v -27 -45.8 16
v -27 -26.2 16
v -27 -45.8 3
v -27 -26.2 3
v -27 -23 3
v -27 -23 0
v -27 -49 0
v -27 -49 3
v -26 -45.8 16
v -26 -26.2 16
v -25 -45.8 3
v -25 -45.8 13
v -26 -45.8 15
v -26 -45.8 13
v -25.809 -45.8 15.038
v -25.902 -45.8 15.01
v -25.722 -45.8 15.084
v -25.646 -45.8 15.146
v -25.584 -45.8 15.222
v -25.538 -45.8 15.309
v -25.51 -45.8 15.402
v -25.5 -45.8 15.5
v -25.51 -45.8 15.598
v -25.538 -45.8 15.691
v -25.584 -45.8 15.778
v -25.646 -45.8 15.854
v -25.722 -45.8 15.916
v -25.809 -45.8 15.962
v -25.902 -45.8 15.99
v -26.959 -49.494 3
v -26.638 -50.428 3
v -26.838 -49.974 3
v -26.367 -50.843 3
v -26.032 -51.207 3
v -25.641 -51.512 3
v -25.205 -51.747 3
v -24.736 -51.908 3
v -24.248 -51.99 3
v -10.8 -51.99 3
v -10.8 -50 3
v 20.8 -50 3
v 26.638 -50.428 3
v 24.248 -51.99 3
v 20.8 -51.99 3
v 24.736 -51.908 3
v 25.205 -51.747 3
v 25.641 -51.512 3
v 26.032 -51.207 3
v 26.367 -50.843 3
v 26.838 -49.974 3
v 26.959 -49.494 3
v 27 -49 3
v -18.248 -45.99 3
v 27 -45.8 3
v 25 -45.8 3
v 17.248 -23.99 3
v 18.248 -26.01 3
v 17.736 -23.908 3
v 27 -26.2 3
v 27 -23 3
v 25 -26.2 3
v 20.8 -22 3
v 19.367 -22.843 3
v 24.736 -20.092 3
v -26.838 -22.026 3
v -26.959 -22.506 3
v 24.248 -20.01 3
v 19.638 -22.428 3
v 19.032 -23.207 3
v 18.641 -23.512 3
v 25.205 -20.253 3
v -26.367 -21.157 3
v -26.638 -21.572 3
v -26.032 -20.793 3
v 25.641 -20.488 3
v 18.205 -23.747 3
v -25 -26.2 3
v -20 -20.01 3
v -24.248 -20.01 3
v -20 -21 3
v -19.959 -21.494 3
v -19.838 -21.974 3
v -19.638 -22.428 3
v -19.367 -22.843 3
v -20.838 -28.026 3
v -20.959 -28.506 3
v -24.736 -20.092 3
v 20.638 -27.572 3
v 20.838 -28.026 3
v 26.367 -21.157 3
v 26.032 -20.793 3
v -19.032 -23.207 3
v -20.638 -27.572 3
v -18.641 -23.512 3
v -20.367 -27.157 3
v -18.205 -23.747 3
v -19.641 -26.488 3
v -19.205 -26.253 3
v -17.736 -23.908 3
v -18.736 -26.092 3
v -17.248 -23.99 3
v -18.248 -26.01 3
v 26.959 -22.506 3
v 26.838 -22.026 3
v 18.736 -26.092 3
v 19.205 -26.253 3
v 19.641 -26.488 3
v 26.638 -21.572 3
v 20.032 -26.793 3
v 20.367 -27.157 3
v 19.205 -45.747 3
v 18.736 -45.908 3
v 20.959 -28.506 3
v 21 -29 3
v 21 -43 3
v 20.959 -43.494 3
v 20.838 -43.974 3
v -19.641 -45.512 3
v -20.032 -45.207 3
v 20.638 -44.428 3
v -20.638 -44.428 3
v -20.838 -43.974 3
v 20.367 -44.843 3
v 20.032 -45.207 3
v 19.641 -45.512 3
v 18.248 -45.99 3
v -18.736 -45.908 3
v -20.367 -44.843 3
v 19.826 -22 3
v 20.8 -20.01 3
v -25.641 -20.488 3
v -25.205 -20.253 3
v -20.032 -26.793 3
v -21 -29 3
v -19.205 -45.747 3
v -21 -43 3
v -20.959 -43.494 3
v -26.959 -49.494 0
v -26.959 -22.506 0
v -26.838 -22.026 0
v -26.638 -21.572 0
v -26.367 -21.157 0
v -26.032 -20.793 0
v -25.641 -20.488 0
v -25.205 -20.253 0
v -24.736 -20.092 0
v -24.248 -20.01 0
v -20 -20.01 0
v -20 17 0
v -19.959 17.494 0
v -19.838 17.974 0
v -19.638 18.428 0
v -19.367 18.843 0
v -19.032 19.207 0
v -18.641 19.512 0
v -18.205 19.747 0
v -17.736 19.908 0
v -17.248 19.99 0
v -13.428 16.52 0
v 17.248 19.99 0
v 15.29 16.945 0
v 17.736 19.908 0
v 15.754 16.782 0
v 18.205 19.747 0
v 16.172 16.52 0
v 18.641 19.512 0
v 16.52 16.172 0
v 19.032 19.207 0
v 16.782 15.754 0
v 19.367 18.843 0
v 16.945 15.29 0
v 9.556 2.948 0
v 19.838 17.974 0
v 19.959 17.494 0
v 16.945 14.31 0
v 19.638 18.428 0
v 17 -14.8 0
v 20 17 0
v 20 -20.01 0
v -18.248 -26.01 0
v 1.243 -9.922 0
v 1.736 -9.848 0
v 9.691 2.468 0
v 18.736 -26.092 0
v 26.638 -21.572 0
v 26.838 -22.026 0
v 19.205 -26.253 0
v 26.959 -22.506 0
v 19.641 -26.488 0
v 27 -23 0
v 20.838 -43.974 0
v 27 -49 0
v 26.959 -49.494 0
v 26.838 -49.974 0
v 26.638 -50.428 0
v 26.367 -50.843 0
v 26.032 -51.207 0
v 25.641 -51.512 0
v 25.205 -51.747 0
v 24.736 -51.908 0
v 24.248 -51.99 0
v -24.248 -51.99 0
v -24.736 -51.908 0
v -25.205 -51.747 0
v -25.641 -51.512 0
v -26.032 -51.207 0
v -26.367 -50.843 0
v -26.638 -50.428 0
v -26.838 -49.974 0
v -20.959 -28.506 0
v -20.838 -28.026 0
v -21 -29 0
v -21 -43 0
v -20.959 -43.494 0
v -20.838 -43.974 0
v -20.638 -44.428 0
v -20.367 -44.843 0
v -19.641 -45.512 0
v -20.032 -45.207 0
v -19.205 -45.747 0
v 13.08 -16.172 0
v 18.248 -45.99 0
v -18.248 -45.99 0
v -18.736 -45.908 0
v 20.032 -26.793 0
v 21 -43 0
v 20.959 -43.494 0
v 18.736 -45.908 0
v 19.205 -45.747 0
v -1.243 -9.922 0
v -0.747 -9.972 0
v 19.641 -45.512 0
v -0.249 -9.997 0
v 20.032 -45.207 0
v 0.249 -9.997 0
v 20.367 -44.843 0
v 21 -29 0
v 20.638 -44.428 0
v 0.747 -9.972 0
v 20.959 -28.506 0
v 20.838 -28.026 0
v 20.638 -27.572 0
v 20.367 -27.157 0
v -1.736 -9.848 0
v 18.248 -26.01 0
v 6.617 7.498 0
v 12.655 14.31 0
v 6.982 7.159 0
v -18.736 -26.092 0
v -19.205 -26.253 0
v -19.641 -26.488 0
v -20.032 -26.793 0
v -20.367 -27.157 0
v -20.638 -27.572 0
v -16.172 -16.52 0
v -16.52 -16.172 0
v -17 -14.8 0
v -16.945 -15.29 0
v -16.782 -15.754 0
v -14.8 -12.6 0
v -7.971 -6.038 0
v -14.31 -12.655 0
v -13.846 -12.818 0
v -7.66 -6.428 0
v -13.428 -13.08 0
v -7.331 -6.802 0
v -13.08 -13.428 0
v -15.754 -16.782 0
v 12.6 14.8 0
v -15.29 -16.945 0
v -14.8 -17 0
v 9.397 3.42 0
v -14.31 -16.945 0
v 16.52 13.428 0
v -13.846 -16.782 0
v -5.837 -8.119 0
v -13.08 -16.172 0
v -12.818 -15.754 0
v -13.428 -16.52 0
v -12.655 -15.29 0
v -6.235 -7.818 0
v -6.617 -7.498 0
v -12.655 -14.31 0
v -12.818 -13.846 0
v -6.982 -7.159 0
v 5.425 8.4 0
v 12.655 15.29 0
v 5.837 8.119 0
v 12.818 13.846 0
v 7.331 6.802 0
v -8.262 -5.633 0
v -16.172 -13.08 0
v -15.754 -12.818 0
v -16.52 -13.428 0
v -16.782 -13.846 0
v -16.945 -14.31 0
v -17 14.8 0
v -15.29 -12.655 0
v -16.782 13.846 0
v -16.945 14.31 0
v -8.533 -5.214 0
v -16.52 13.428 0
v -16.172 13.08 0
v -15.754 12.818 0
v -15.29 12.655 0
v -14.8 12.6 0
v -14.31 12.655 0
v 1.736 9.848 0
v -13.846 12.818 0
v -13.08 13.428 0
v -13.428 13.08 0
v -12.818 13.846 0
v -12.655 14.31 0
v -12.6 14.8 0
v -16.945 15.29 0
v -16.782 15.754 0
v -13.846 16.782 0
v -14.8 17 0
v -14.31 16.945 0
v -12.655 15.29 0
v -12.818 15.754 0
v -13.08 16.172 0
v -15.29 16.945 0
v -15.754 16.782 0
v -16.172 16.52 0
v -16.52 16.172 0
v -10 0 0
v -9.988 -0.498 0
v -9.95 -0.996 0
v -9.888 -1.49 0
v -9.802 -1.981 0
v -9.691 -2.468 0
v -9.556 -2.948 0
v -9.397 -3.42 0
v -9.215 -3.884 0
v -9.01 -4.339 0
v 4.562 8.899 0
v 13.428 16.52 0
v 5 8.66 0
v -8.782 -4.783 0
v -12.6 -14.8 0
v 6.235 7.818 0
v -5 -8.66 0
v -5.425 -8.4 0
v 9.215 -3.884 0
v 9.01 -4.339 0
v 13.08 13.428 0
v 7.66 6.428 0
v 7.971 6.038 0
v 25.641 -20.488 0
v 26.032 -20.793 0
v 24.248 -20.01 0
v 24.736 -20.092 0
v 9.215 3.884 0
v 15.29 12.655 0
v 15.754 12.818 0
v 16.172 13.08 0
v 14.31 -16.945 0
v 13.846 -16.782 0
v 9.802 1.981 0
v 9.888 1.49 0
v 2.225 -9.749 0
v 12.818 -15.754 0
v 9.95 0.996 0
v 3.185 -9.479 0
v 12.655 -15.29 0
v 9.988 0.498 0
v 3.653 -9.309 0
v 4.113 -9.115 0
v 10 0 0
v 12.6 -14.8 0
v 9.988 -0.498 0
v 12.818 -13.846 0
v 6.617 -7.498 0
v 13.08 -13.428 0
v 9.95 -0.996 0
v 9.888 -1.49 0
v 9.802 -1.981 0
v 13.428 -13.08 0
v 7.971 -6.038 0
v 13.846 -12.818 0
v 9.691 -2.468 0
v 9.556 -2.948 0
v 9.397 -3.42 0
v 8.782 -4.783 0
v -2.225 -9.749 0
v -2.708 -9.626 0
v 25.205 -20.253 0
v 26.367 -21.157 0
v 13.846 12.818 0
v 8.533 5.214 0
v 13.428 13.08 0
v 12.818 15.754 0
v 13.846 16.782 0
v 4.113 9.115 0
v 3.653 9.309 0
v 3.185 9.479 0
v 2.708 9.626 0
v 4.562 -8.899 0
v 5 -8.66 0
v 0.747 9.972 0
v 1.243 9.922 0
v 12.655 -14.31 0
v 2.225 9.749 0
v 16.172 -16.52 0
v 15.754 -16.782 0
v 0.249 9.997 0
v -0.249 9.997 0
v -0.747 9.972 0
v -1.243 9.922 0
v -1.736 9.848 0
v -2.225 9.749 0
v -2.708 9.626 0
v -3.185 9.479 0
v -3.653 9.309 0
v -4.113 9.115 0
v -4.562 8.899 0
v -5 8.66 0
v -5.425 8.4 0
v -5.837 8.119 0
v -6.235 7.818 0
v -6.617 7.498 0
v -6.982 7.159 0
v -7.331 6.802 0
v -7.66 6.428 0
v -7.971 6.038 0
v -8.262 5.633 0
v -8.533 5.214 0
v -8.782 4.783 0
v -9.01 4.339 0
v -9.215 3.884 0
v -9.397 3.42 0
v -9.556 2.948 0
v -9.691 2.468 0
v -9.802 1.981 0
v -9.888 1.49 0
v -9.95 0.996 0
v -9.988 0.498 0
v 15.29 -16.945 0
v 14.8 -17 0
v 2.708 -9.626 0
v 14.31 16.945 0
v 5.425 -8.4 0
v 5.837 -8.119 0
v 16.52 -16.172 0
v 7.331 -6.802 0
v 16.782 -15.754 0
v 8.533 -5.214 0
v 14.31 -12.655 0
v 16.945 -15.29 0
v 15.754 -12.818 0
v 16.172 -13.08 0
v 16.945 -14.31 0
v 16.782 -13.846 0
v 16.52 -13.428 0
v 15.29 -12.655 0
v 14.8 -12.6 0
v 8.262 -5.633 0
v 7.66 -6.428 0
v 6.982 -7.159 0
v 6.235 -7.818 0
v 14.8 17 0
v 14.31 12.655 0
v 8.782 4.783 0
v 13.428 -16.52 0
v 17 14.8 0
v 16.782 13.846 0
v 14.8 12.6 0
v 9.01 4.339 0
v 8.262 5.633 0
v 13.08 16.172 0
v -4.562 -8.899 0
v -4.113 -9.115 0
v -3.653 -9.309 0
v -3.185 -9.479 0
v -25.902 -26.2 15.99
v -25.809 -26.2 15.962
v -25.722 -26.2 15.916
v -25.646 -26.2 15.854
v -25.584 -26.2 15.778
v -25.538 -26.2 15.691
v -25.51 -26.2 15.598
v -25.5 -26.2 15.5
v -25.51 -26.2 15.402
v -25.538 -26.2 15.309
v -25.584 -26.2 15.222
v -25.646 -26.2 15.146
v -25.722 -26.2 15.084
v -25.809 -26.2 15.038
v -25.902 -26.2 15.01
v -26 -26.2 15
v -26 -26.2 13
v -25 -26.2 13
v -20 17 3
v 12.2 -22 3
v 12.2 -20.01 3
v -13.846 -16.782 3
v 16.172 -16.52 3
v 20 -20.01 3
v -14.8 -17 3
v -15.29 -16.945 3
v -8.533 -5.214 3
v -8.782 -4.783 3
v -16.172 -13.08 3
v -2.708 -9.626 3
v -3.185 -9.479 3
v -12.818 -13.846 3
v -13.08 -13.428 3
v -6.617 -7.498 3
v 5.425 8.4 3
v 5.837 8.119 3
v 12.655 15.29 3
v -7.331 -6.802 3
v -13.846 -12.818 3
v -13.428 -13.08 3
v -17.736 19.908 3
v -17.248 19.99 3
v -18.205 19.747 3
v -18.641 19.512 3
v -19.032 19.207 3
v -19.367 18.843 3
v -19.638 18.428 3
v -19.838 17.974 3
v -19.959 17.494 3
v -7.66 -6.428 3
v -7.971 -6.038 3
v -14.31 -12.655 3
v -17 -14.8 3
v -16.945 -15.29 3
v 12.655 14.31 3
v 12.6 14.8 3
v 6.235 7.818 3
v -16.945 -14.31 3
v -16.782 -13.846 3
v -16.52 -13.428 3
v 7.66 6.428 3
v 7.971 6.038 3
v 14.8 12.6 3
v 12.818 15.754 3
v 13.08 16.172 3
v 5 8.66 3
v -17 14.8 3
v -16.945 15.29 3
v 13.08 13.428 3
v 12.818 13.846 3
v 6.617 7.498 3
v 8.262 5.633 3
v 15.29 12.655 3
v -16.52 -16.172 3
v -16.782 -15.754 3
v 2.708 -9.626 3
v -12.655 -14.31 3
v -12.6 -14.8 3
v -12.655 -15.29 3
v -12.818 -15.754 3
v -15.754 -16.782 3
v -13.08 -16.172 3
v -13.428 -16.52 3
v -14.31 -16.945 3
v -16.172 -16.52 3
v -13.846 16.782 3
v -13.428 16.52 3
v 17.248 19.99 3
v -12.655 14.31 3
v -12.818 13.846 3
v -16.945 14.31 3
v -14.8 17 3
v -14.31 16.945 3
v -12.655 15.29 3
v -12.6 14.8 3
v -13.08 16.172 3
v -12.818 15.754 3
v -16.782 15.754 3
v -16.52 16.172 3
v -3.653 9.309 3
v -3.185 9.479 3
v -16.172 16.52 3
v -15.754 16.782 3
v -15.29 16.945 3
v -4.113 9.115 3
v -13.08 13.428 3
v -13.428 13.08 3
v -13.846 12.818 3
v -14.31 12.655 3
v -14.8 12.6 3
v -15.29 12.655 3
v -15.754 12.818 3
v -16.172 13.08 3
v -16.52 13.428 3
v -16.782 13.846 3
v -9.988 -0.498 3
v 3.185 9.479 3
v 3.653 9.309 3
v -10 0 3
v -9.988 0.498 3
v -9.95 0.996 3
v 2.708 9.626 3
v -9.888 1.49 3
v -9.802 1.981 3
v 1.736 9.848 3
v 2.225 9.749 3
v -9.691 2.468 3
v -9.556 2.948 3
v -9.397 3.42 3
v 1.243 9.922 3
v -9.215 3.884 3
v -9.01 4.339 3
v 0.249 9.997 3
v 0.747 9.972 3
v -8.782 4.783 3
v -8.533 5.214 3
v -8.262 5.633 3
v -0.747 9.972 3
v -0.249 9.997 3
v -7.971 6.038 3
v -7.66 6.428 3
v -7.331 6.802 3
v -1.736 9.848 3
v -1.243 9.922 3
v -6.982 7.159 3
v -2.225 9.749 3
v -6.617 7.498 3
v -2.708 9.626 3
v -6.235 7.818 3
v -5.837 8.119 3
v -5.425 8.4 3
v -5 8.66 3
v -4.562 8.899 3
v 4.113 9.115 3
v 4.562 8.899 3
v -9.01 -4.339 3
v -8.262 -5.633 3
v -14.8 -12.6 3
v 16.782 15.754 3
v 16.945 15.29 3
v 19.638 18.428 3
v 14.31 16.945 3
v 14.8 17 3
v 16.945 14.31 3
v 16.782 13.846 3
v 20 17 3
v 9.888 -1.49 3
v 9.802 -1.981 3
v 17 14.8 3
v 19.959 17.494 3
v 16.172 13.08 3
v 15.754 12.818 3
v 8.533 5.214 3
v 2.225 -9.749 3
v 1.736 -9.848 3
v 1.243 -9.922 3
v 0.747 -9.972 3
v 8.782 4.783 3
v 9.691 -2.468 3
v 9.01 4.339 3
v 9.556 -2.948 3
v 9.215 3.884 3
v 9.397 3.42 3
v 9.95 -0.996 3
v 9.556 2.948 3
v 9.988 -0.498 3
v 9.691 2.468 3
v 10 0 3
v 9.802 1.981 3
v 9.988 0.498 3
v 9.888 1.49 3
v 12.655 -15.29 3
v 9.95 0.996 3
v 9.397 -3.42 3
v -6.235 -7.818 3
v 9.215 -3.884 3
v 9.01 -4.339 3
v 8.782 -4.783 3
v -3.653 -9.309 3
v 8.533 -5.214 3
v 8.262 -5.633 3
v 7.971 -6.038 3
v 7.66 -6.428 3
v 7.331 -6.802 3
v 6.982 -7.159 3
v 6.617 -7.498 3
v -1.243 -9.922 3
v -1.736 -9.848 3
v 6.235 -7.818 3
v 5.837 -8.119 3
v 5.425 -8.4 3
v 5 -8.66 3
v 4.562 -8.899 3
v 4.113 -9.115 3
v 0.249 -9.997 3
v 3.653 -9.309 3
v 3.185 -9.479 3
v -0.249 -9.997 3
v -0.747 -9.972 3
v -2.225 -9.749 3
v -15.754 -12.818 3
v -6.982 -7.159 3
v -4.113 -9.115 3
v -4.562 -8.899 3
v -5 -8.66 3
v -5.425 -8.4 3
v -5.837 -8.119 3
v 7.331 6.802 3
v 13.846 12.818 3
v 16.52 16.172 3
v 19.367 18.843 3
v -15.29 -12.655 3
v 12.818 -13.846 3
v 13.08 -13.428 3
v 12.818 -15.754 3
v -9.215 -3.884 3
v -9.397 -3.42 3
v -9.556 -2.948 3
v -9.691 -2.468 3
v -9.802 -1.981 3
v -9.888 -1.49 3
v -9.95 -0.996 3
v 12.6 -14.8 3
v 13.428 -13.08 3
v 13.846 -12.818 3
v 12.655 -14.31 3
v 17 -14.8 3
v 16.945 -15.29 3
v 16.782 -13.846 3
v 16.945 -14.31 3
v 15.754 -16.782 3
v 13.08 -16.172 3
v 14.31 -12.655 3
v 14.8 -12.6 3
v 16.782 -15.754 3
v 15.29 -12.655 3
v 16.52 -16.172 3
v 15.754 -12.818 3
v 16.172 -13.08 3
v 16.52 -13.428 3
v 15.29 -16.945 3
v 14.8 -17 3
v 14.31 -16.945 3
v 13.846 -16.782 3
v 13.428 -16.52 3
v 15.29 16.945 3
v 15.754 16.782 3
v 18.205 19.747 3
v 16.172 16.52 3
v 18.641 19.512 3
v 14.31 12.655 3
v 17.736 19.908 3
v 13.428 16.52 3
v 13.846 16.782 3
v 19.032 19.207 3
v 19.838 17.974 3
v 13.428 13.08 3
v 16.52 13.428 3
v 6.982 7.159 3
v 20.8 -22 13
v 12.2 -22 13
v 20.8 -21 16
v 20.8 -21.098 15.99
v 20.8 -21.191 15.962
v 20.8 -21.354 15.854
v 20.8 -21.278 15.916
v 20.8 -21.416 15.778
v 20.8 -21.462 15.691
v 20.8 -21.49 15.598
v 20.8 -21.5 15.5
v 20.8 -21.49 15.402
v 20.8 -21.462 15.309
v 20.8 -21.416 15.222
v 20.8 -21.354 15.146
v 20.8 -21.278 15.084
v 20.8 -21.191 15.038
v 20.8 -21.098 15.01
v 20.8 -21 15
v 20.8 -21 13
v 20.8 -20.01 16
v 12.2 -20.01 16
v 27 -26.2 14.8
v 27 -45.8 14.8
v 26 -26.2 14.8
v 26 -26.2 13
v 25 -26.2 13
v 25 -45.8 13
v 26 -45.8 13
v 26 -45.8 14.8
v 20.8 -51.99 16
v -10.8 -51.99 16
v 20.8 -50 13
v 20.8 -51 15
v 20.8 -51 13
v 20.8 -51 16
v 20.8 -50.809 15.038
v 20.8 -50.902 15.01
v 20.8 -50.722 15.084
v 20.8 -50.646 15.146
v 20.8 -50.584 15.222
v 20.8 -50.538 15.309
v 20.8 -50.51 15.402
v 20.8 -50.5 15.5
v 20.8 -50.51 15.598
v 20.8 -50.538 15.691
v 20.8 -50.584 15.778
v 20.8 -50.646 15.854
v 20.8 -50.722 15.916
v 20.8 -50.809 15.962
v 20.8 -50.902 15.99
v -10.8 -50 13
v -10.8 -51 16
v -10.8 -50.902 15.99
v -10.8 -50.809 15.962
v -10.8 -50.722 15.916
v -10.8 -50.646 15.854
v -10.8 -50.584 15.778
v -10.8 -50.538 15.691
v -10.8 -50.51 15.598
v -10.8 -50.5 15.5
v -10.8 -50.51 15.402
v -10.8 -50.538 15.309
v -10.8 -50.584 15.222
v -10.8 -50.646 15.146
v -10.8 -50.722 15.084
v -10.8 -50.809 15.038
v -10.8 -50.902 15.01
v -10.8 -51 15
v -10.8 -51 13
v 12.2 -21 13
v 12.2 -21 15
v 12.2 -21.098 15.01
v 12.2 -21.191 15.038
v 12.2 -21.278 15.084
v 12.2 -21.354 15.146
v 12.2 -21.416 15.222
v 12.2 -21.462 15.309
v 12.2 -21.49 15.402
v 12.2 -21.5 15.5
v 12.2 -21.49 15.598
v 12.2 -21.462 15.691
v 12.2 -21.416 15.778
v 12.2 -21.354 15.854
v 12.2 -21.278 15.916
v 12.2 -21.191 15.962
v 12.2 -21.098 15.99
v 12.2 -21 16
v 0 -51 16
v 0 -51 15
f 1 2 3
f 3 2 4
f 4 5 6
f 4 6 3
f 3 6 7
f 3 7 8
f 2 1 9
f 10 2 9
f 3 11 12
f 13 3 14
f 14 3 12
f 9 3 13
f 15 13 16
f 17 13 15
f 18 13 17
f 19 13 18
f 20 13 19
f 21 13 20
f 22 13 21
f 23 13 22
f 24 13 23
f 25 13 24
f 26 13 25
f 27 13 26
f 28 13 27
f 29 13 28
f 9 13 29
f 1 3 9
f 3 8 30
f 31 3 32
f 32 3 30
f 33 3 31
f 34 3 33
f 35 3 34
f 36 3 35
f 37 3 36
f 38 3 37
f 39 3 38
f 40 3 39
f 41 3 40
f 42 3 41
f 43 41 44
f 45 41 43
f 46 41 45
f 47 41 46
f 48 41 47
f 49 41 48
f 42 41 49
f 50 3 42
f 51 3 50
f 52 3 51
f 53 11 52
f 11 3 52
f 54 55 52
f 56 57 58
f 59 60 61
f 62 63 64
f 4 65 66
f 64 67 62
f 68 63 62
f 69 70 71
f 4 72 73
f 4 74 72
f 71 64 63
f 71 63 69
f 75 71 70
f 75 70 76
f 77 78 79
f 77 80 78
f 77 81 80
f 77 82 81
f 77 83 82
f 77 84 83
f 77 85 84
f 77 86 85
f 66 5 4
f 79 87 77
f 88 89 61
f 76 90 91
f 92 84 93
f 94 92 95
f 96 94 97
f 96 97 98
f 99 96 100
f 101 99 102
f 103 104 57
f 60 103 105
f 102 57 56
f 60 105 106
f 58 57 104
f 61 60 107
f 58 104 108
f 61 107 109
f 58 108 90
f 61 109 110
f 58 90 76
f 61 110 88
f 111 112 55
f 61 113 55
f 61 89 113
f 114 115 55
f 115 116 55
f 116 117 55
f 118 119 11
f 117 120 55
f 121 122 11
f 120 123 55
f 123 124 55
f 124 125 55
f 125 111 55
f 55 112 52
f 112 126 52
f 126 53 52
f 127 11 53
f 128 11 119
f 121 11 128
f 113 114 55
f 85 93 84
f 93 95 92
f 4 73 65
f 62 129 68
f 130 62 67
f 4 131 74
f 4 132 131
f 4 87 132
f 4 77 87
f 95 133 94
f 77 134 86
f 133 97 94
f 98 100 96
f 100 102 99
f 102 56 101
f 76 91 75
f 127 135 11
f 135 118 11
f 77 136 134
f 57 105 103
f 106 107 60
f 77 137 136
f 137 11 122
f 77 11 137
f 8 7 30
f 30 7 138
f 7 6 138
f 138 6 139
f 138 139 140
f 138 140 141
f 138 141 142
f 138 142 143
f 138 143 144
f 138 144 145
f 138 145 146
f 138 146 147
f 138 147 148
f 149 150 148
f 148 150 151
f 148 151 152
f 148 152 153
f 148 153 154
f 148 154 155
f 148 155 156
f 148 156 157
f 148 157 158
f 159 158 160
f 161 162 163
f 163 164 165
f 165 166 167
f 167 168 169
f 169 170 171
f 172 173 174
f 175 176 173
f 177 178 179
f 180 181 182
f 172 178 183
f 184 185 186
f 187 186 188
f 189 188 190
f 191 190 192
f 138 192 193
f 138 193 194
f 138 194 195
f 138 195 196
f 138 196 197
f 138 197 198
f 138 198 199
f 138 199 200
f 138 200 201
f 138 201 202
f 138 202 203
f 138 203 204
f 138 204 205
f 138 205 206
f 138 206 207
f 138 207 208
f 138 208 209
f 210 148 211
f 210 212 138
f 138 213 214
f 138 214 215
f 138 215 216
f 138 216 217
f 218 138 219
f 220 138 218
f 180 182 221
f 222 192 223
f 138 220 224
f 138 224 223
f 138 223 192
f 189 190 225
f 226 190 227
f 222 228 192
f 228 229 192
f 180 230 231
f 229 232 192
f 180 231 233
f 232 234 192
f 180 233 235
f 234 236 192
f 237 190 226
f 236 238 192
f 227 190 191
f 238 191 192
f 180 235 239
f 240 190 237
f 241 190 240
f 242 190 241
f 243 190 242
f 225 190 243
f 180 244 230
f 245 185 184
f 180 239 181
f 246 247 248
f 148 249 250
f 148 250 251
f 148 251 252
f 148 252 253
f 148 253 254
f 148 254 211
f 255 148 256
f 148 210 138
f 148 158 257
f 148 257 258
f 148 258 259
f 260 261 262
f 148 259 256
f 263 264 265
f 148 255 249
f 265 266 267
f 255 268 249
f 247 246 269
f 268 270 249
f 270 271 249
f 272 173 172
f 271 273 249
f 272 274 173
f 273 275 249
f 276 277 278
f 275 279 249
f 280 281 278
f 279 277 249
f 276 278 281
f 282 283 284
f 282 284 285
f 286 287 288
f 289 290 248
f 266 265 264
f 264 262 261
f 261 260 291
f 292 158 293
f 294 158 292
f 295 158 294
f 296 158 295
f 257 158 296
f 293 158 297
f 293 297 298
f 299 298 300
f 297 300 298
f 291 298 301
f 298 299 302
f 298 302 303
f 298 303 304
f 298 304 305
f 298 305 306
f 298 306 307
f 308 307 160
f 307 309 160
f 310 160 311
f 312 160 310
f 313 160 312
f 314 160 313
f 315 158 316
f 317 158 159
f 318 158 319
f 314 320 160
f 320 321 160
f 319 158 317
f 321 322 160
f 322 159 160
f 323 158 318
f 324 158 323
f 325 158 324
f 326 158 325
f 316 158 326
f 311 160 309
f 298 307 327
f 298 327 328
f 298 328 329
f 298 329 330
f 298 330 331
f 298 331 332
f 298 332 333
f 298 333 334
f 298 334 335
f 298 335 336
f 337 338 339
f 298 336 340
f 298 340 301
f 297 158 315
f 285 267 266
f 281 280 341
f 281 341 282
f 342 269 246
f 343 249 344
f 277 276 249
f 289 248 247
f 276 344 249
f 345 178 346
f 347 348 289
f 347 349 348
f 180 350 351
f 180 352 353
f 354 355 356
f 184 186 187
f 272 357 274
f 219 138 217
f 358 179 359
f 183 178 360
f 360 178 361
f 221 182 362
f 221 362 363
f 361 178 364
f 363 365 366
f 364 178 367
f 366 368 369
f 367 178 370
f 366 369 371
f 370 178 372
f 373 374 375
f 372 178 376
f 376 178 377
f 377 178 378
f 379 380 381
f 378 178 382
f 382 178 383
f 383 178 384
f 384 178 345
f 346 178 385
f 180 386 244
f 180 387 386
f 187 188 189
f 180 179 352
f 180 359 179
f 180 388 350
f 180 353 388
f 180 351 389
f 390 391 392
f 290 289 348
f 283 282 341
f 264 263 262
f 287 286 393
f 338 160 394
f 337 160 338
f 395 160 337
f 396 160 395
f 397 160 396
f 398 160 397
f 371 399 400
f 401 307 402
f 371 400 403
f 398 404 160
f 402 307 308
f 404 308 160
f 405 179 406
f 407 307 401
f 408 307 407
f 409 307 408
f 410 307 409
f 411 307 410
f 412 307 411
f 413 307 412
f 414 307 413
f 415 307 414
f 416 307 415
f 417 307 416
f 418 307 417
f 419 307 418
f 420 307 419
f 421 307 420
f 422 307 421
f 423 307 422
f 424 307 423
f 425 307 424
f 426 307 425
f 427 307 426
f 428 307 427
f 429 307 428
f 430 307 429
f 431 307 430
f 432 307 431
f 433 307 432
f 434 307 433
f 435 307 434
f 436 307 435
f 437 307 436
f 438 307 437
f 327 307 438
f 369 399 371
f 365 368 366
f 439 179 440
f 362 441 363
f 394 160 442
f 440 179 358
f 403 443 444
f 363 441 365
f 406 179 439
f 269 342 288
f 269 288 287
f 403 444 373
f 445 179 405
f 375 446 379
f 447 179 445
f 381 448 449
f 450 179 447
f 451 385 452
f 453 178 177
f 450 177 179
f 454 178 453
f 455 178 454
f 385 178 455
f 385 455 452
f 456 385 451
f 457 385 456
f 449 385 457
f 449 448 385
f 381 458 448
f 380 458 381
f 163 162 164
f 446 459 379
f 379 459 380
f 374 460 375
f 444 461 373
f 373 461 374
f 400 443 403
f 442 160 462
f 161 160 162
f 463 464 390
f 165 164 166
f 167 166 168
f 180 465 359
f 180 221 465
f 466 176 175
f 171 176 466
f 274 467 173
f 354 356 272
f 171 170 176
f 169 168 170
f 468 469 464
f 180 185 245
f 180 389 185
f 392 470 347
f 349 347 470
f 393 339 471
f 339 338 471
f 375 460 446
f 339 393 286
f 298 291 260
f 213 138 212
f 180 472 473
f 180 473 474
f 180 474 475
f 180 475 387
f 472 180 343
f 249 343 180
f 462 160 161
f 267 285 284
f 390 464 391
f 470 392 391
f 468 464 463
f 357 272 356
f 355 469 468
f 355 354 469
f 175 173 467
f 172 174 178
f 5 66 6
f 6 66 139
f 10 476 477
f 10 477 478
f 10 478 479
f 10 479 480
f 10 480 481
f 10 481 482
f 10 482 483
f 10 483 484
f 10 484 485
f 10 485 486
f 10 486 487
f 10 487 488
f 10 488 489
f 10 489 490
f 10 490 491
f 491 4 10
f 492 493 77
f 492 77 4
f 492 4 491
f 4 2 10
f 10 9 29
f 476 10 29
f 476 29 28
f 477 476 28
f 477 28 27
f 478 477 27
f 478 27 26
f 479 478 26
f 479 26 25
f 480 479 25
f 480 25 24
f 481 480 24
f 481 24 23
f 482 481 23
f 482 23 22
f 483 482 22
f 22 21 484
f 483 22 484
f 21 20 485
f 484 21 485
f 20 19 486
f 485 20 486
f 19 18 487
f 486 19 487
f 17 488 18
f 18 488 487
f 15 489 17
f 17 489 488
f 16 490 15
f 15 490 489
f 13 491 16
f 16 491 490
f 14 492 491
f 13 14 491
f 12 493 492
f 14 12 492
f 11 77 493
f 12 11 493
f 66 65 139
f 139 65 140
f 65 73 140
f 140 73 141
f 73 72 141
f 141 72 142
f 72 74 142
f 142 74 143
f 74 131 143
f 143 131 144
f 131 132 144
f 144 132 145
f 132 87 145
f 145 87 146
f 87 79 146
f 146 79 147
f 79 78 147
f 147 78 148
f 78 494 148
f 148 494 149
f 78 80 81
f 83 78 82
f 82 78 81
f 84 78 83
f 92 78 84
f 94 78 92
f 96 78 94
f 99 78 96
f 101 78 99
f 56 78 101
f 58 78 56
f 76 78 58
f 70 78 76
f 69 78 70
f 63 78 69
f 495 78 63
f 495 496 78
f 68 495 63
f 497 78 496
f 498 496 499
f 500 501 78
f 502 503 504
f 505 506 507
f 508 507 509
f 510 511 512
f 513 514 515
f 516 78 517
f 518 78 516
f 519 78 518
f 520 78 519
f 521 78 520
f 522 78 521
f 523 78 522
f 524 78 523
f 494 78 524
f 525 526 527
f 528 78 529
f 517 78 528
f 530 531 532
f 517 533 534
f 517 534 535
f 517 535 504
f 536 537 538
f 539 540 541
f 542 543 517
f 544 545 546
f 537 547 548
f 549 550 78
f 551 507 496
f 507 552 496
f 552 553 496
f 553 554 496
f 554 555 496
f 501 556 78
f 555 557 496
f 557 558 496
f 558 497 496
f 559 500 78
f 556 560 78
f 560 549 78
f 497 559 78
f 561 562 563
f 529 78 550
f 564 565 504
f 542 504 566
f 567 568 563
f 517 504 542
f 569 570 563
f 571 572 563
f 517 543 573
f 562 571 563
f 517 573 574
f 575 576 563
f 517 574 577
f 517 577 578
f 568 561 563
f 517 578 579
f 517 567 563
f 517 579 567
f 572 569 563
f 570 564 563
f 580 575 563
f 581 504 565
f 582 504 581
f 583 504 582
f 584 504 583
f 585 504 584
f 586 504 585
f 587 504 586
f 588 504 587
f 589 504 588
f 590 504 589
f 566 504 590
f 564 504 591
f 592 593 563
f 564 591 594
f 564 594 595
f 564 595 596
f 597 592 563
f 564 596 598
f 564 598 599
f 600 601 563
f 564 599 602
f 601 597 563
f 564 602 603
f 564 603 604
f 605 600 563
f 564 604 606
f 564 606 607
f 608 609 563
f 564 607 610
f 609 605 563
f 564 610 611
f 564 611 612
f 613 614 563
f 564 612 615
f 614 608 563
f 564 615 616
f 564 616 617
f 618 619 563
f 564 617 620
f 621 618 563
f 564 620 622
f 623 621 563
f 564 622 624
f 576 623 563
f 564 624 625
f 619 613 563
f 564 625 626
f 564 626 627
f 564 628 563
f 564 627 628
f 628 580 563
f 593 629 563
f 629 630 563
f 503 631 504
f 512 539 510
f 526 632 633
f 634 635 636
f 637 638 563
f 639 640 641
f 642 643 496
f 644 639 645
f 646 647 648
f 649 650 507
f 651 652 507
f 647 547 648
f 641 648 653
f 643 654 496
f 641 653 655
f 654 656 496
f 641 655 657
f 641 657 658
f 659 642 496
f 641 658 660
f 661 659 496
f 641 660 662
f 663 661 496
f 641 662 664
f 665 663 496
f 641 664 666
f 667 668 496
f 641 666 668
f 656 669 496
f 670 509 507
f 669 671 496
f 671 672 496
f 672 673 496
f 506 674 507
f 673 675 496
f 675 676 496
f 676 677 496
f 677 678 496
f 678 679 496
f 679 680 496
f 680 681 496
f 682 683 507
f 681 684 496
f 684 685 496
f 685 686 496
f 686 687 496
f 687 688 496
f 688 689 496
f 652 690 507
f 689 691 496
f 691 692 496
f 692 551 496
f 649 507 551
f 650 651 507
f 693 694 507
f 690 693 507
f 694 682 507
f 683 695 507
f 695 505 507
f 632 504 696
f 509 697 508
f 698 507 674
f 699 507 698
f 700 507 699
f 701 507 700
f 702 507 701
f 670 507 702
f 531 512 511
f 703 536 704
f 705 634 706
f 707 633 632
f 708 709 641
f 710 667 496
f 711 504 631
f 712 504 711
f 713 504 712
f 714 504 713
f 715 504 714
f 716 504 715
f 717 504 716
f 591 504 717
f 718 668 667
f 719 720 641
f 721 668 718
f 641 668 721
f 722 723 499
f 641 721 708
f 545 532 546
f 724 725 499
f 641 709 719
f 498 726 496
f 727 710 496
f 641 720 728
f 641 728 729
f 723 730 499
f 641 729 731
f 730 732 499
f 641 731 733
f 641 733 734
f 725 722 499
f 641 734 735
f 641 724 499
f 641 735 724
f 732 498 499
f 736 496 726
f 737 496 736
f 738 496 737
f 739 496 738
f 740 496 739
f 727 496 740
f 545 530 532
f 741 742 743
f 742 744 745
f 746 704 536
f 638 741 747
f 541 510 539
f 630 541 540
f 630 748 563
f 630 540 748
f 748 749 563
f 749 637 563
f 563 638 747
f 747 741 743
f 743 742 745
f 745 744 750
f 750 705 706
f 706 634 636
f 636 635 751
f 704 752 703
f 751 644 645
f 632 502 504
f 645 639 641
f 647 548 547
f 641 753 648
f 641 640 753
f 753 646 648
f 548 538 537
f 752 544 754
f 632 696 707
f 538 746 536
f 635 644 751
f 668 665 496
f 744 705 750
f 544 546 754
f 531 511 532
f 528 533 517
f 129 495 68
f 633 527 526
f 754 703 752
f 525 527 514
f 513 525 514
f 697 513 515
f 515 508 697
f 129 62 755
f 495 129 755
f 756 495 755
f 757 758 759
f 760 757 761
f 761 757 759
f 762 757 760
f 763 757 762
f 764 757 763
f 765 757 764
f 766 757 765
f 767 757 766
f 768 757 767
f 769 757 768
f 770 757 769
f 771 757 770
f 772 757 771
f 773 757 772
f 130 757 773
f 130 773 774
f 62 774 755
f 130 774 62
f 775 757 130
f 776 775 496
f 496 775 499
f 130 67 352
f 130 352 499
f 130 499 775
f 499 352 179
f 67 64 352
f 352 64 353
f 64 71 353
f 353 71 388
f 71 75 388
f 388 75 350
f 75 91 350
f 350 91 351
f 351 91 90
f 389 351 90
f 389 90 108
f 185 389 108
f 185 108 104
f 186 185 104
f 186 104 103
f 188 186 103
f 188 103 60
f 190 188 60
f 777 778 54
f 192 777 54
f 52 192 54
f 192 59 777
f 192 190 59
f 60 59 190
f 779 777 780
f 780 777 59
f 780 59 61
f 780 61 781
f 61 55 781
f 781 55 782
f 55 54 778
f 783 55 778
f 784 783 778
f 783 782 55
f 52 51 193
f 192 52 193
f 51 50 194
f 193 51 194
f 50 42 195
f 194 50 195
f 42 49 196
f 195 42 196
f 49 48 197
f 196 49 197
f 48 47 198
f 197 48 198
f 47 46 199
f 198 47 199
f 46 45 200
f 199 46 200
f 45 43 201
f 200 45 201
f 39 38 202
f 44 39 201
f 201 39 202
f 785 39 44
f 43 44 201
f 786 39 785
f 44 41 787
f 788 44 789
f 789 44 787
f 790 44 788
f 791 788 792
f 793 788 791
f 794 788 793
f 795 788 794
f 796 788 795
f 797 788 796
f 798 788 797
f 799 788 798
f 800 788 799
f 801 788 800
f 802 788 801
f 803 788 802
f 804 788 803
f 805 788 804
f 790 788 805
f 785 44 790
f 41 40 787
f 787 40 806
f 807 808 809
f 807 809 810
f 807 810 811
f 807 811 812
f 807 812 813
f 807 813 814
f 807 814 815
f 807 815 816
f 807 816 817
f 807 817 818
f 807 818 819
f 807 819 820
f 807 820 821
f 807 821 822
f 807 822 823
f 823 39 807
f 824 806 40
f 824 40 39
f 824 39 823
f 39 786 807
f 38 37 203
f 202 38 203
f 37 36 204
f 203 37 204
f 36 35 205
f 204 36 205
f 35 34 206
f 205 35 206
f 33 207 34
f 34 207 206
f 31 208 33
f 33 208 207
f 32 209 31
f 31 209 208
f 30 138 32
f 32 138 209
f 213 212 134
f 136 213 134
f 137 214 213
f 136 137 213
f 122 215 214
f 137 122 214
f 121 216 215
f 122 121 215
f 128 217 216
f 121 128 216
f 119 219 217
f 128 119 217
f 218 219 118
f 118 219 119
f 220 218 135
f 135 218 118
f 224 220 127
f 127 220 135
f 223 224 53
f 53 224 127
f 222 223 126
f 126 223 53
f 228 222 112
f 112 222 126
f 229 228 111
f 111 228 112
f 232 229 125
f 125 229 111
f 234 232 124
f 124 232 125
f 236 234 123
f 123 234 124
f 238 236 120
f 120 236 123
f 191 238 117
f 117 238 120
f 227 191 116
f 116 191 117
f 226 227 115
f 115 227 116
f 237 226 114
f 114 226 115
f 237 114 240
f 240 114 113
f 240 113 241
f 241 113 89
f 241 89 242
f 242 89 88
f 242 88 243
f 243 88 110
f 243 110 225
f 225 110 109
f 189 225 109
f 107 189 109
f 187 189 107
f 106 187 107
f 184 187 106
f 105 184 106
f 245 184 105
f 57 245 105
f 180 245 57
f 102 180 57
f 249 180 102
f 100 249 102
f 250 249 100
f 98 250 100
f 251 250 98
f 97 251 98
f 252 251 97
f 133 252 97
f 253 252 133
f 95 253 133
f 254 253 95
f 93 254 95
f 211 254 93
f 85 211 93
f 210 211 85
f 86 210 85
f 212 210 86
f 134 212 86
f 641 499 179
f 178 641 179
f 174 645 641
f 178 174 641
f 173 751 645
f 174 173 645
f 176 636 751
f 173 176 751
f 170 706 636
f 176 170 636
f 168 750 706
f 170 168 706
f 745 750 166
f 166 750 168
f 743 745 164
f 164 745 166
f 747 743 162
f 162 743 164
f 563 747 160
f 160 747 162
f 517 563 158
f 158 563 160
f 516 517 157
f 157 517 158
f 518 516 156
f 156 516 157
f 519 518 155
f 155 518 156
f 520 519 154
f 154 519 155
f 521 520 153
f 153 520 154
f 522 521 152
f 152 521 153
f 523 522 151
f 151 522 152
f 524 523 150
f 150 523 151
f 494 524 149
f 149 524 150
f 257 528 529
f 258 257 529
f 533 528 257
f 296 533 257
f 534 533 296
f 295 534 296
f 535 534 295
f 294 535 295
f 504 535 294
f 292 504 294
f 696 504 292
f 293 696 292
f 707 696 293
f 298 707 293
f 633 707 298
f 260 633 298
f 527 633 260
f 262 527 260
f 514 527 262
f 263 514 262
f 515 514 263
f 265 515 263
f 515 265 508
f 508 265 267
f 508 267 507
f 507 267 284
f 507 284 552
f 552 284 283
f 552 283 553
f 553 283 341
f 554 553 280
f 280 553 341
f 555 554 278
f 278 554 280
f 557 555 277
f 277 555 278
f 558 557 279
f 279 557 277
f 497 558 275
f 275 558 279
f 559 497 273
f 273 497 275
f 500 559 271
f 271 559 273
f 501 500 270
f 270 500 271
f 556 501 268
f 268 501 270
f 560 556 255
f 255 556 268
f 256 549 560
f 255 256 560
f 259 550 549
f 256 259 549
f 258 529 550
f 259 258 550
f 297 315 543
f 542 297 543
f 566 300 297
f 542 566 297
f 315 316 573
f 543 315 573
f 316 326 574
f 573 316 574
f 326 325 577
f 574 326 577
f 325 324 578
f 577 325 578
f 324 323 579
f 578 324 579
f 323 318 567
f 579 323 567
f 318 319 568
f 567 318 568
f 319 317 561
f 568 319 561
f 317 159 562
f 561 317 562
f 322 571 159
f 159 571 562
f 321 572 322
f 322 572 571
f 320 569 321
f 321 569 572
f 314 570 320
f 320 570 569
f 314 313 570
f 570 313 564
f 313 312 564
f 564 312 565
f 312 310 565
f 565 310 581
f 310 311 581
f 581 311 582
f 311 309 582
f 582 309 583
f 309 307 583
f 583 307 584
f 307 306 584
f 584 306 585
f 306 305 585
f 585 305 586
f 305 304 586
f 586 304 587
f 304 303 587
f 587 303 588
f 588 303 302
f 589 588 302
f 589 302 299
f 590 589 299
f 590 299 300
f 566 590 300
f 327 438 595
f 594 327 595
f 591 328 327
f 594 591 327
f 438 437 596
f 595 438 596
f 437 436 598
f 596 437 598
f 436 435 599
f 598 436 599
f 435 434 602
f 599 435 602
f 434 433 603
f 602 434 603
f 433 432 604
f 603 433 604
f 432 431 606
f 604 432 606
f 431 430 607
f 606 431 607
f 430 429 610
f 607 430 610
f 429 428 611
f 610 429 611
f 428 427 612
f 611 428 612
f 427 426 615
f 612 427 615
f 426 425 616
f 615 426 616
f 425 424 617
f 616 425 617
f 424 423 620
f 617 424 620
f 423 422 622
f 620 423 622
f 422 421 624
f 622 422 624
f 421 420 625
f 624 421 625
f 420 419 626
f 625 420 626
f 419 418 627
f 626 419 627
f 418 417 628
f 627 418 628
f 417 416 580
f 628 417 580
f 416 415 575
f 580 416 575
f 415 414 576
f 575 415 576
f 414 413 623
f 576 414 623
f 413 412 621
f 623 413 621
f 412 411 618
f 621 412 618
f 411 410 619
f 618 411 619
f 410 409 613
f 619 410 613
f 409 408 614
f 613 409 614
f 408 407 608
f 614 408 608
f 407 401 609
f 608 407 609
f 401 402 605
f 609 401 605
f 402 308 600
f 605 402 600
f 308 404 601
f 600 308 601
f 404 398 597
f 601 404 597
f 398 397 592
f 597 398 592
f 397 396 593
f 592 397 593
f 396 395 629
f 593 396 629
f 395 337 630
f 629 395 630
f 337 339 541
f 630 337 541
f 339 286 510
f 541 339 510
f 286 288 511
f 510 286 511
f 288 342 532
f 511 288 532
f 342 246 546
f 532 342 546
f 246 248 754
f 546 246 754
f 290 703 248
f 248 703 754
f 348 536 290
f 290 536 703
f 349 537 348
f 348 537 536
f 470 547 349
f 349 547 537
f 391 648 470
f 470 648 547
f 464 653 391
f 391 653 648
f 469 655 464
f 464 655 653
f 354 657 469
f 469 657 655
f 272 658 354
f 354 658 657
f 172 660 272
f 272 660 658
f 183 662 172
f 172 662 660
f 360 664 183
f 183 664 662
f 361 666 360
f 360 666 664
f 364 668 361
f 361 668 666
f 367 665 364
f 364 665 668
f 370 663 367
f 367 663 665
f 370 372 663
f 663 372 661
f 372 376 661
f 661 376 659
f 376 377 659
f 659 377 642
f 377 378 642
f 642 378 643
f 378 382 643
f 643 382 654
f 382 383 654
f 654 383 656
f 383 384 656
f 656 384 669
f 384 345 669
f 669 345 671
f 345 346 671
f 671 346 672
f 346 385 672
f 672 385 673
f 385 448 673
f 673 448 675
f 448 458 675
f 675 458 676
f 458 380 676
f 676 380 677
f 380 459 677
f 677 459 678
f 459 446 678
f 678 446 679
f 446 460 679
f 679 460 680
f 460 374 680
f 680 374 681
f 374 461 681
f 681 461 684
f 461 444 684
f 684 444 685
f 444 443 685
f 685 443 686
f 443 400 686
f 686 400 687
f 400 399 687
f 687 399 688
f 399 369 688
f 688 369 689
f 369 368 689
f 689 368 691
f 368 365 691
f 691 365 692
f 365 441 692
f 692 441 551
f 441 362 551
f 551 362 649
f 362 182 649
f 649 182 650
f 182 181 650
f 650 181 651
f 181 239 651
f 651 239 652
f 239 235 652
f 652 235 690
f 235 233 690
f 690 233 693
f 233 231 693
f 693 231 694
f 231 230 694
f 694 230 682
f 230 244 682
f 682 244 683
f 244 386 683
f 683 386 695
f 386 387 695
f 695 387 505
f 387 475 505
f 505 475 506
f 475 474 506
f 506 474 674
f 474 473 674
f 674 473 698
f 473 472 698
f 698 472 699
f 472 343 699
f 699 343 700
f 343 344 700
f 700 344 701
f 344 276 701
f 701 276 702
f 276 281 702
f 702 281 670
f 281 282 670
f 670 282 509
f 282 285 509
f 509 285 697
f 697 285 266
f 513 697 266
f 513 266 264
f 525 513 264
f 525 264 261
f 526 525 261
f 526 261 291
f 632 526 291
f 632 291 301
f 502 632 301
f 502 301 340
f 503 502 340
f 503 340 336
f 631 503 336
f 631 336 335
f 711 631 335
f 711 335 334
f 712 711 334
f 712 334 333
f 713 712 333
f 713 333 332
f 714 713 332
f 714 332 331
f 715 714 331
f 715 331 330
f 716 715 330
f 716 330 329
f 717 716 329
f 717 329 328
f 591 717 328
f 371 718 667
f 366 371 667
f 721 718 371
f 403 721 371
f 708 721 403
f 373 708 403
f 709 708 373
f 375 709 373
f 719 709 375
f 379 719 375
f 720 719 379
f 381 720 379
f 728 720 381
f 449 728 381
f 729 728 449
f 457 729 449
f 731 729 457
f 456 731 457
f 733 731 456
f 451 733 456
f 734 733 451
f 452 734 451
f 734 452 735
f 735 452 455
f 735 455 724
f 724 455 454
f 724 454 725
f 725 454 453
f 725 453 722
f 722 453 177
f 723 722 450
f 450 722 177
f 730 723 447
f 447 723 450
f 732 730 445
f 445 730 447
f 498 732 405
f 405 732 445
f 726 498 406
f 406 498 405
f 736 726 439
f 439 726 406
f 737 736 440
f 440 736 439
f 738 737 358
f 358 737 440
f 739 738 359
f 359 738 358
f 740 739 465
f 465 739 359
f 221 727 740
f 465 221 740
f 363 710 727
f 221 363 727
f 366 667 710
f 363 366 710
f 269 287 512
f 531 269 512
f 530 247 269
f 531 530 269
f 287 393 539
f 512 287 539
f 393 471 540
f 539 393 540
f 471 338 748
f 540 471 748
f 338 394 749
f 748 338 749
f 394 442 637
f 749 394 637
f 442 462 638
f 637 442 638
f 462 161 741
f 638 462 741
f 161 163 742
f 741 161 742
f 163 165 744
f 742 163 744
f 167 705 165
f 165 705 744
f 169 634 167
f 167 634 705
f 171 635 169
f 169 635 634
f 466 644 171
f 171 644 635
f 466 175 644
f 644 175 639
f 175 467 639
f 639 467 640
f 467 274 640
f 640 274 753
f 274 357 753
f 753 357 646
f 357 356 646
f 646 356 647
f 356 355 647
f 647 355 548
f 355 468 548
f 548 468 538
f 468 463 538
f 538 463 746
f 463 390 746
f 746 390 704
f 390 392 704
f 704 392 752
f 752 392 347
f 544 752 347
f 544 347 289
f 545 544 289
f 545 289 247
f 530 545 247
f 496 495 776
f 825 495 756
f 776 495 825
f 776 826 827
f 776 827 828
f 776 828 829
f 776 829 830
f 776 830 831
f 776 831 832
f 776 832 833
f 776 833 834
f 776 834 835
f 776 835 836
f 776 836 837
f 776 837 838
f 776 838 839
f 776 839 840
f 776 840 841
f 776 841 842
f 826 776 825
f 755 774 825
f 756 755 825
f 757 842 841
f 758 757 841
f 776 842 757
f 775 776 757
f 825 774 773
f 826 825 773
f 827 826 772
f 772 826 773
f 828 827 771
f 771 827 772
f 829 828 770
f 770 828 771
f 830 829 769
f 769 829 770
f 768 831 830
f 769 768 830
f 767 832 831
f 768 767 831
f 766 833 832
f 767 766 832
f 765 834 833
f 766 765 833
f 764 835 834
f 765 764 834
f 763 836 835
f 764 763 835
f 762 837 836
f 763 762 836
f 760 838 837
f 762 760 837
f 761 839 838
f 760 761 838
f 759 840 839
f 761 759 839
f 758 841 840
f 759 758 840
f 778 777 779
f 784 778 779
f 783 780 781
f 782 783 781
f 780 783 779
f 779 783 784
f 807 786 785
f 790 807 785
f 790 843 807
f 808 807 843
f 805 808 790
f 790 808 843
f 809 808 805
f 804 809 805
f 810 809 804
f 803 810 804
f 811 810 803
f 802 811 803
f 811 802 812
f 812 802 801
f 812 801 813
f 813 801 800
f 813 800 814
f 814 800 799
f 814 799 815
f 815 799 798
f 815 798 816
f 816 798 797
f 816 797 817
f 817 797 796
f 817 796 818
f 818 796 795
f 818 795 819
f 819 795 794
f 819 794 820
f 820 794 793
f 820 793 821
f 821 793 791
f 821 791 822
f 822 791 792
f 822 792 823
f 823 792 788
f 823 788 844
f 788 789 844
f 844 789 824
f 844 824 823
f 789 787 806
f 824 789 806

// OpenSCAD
// file: functions.scad
/*******************************************************************

This OpenSCAD code and its rendered 3D model are part of the

	Kühling&Kühling RepRap Industrial 3D Printer


All details, BOM, assembling instructions and latest sources:
	http://kuehlingkuehling.de

Designed and developed by:
	Jonas Kühling <mail@jonaskuehling.de>
	Simon Kühling <mail@simonkuehling.de>

Licensed under:
	Creative Commons Attribution-ShareAlike
	CC BY-SA 3.0
	http://creativecommons.org/licenses/by-sa/3.0/

*******************************************************************/

module teardrop (r=4.5,h=20,alpha=45,teardropcorner=0,fulldrop=0){		// tear drop hole for top-centering
											// use teardropcorner=1 for bottom horizontal corners
	render()
	translate([-h/2,0,0])
		rotate([-270,0+(teardropcorner*180),90])
			difference(){
				linear_extrude(height=h){
					circle(r);
					polygon(points=[[0,0],[r*cos(alpha),r*sin(alpha)],[0,r/sin(alpha)],[-r*cos(alpha),r*sin(alpha)]], paths=[[0,1,2,3]]);
				}
				if(fulldrop==0) 
					translate([0,(r/sin(alpha))/2+r,h/2]) cube([2*r+2,r/sin(alpha),h+2],center=true);
			}
}

//teardrop(4.5,22,fulldrop=true);



module teardropcentering (r=4.5,h=20,alpha=45){				// tear drop hole for top-centering
	centering_offset_factor = 1.1;
	render()
	translate([-h/2,0,0])
		rotate([-270,0,90])
			difference(){
				linear_extrude(height=h){
					circle(r, $fn=24);
					polygon(points=[[0,0],[r*cos(alpha),r*sin(alpha)],[0,r/sin(alpha)],[-r*cos(alpha),r*sin(alpha)]], paths=[[0,1,2,3]]);
				}
				translate([0,(r/sin(alpha))/2+r*centering_offset_factor,h/2]) cube([2*r+2,r/sin(alpha),h+2],center=true);
			}
}

//teardropcentering();



module teardropcentering_half (r=4.5,h=20, bottom=0,alpha=45){				// tear drop hole for top-centering
																// upper half (bottom=0) or bottom half (bottom=1)
	centering_offset_factor = 1.2;
	render()
	translate([-h/2,0,0])
		rotate([-270,0,90])
			difference(){
				linear_extrude(height=h){
					circle(r, $fn=24);
					polygon(points=[[0,0],[r*cos(alpha),r*sin(alpha)],[0,r/sin(alpha)],[-r*cos(alpha),r*sin(alpha)]], paths=[[0,1,2,3]]);
				}
				translate([0,(r/sin(alpha))/2+r*centering_offset_factor,h/2]) cube([2*r+2,r/sin(alpha),h+2],center=true);
				translate([0,-(r*centering_offset_factor)/2-0.5+bottom*(r*centering_offset_factor+1),h/2]) cube([2*r+2,r*centering_offset_factor+1,h+2],center=true);
			}
}

//teardropcentering_half(bottom=0);


module polyhole(d,h){
	n = max(round(2 * d),3);
	cylinder(h = h, r = (d / 2) / cos (180 / n), $fn = n, center=true);
}



module roundcorner(radius,edge_length){
	render()
	translate([0,0,-1])
		difference(){
			translate([-1,-1,0])
				cube(size = [radius+1,radius+1,edge_length+2], center = false);
			translate(v = [radius,radius,-1])
				cylinder(h = edge_length+4, r=radius, center=false,$fs=0.1);
		}
}

//roundcorner(5,5);



module roundcorner_tear(radius,edge_length){
	render()
	difference(){
		translate([-1,-1,-1])
			cube(size = [edge_length+2, radius+1, radius+1], center = false);
		translate([(edge_length+4)/2-2, radius, radius])
			teardrop(radius, edge_length+4,teardropcorner=1);
	}
}

//roundcorner_tear(8,20);


module roundedge_tear(radius){
	render()
	difference(){
		translate([-1,-1,-1])
			cube(size = [radius+1, radius+1, radius+1], center = false);
		translate([radius,radius,radius])
			union(){
				sphere(r=radius, $fs=0.1);
				translate([0,0,-radius])
					cylinder(r1=(radius*sin(45))-(radius-(radius*sin(45))),r2=radius*sin(45),h=(radius-(radius*sin(45))), $fs=0.1);
			}
	}
}

//roundedge_tear(20);



module roundedge(radius){
	render()
	difference(){
		translate([-1,-1,-1])
			cube(size = [radius+1, radius+1, radius+1], center = false);
		translate([radius,radius,radius])
			sphere(r=radius, $fs=0.1);
	}
}

//roundedge(5);


module nut_trap(nut_wrench_size,trap_height,vertical=0, clearance=0.2,center=true){		// M3 wrench size = 5.5
	radius = cornerdiameter(nut_wrench_size+2*clearance) /2;
	rotate([0,vertical*90,0])
		cylinder(h = trap_height, r = radius, center=center, $fn = 6);
}

//nut_trap(5,5,0);

module nut_slot(nut_wrench_size,nut_height, nut_elevation,vertical=0, clearance=0.2){		// M3 wrench size = 5.5
	radius = cornerdiameter(nut_wrench_size+2*clearance) /2;
	slot_height = nut_height+2*clearance;
	slot_width = nut_wrench_size+2*clearance;
	rotate([0,vertical*270,0]){
		cylinder(h = slot_height, r = radius, center=true, $fn = 6);
		translate([0,-slot_width/2,-slot_height/2]) cube([nut_elevation+1,slot_width,slot_height]);
	}
}

//nut_slot(5.5,3,4,1);

function cornerdiameter(wrench_size) =  2* ((wrench_size)/2)/ cos(180/6);
function cornerdiameter_8(wrench_size) =  2* ((wrench_size)/2)/ cos(180/8);
// main file
/*******************************************************************

This OpenSCAD code and its rendered 3D model are part of the

	Kühling&Kühling RepRap Industrial 3D Printer


All details, BOM, assembling instructions and latest sources:
	http://kuehlingkuehling.de

Designed and developed by:
	Jonas Kühling <mail@jonaskuehling.de>
	Simon Kühling <mail@simonkuehling.de>

License:
	Creative Commons Attribution-ShareAlike 4.0 International (CC BY-SA 4.0)
	https://creativecommons.org/licenses/by-sa/4.0/

*******************************************************************/

include <configuration.scad>




// RENDERING
rotate([-90,0,0]) controller_touchscreen_adapterpcb_mount();





module controller_touchscreen_adapterpcb_mount(){
	difference(){

		// main body
		union(){
			hull(){
				translate([-controller_touchscreen_housing_mount_body_side/2+wall,0,-controller_touchscreen_housing_mount_body_side/2-1])
					rotate([90,0,0])
						cylinder(r=wall,h=wall);
				translate([-controller_touchscreen_housing_mount_body_side/2+wall,0,controller_touchscreen_housing_mount_body_side/2-wall])
					rotate([90,0,0])
						cylinder(r=wall,h=wall);
				translate([controller_touchscreen_housing_mount_body_side/2-wall,0,-controller_touchscreen_housing_mount_body_side/2-1])
					rotate([90,0,0])
						cylinder(r=wall,h=wall);
				translate([controller_touchscreen_housing_mount_body_side/2-wall,0,controller_touchscreen_housing_mount_body_side/2-wall])
					rotate([90,0,0])
						cylinder(r=wall,h=wall);
			}

			// pcb mount
			translate([0,0,-controller_touchscreen_housing_mount_body_side/2])
			difference(){
				union(){
					difference(){
						hull(){
							translate([-(controller_touchscreen_adapterpcb_width+2*wall_thin)/2+wall,0,-(controller_touchscreen_adapterpcb_height+2*wall_thin)+wall])
								rotate([90,0,0])
									cylinder(r=wall,h=wall+controller_touchscreen_adapterpcb_clearance_bottom+clearance+controller_touchscreen_adapterpcb_thickness+clearance+wall_thin);
							translate([-(controller_touchscreen_adapterpcb_width+2*wall_thin)/2+wall,0,-wall])
								rotate([90,0,0])
									cylinder(r=wall,h=wall+controller_touchscreen_adapterpcb_clearance_bottom+clearance+controller_touchscreen_adapterpcb_thickness+clearance+wall_thin);
							translate([(controller_touchscreen_adapterpcb_width+2*wall_thin)/2-wall,0,-(controller_touchscreen_adapterpcb_height+2*wall_thin)+wall])
								rotate([90,0,0])
									cylinder(r=wall,h=wall+controller_touchscreen_adapterpcb_clearance_bottom+clearance+controller_touchscreen_adapterpcb_thickness+clearance+wall_thin);
							translate([(controller_touchscreen_adapterpcb_width+2*wall_thin)/2-wall,0,-wall])
								rotate([90,0,0])
									cylinder(r=wall,h=wall+controller_touchscreen_adapterpcb_clearance_bottom+clearance+controller_touchscreen_adapterpcb_thickness+clearance+wall_thin);
						}
						translate([-(controller_touchscreen_adapterpcb_width-2*wall_thin)/2,-(wall+controller_touchscreen_adapterpcb_clearance_bottom+clearance+controller_touchscreen_adapterpcb_thickness+clearance+wall_thin)-wall,-(controller_touchscreen_adapterpcb_height-2*wall_thin)-2*wall_thin])
							cube([controller_touchscreen_adapterpcb_width-2*wall_thin,wall+controller_touchscreen_adapterpcb_clearance_bottom+clearance+controller_touchscreen_adapterpcb_thickness+clearance+wall_thin,controller_touchscreen_adapterpcb_height-2*wall_thin]);
						hull(){
							translate([-(controller_touchscreen_adapterpcb_width+2*wall_thin)/2+wall+2*wall,1,-(controller_touchscreen_adapterpcb_height+2*wall_thin)+wall+2*wall])
								rotate([90,0,0])
									cylinder(r=wall,h=wall+controller_touchscreen_adapterpcb_clearance_bottom+clearance+controller_touchscreen_adapterpcb_thickness+clearance+wall_thin);
							translate([-(controller_touchscreen_adapterpcb_width+2*wall_thin)/2+wall+2*wall,1,-wall-2*wall])
								rotate([90,0,0])
									cylinder(r=wall,h=wall+controller_touchscreen_adapterpcb_clearance_bottom+clearance+controller_touchscreen_adapterpcb_thickness+clearance+wall_thin);
							translate([(controller_touchscreen_adapterpcb_width+2*wall_thin)/2-wall-2*wall,1,-(controller_touchscreen_adapterpcb_height+2*wall_thin)+wall+2*wall])
								rotate([90,0,0])
									cylinder(r=wall,h=wall+controller_touchscreen_adapterpcb_clearance_bottom+clearance+controller_touchscreen_adapterpcb_thickness+clearance+wall_thin);
							translate([(controller_touchscreen_adapterpcb_width+2*wall_thin)/2-wall-2*wall,1,-wall-2*wall])
								rotate([90,0,0])
									cylinder(r=wall,h=wall+controller_touchscreen_adapterpcb_clearance_bottom+clearance+controller_touchscreen_adapterpcb_thickness+clearance+wall_thin);
						}
						translate([-(controller_touchscreen_adapterpcb_width)/2,-(wall+controller_touchscreen_adapterpcb_clearance_bottom+clearance+controller_touchscreen_adapterpcb_thickness+clearance+wall_thin)-wall-controller_touchscreen_adapterpcb_clearance_bottom,-(controller_touchscreen_adapterpcb_height)-wall_thin])
							cube([controller_touchscreen_adapterpcb_width,wall+controller_touchscreen_adapterpcb_clearance_bottom+clearance+controller_touchscreen_adapterpcb_thickness+clearance+wall_thin,controller_touchscreen_adapterpcb_height]);
					}
					translate([0,-(wall+controller_touchscreen_adapterpcb_clearance_bottom+clearance+controller_touchscreen_adapterpcb_thickness+clearance+wall_thin)+wall_thin/2,-wall_thin])
						rotate([0,90,0])
							cylinder(r=wall_thin/2,h=controller_touchscreen_adapterpcb_width,center=true,$fa=0.1,$fs=0.1);
					translate([0,-(wall+controller_touchscreen_adapterpcb_clearance_bottom+clearance+controller_touchscreen_adapterpcb_thickness+clearance+wall_thin)+wall_thin/2,-(controller_touchscreen_adapterpcb_height+2*wall_thin)+wall_thin])
						rotate([0,90,0])
							cylinder(r=wall_thin/2,h=controller_touchscreen_adapterpcb_width,center=true,$fa=0.1,$fs=0.1);
					translate([-(controller_touchscreen_adapterpcb_width+2*wall_thin)/2+wall_thin,-(wall+controller_touchscreen_adapterpcb_clearance_bottom+clearance+controller_touchscreen_adapterpcb_thickness+clearance+wall_thin)+wall_thin/2,-(controller_touchscreen_adapterpcb_height+2*wall_thin)/2])
						cylinder(r=wall_thin/2,h=controller_touchscreen_adapterpcb_height,center=true,$fa=0.1,$fs=0.1);
				}
	
				translate([-(controller_touchscreen_adapterpcb_width+2*wall_thin)/2-1,-(wall+controller_touchscreen_adapterpcb_clearance_bottom+clearance+controller_touchscreen_adapterpcb_thickness+clearance+wall_thin)-wall,-wall_thin-clearance-controller_touchscreen_adapterpcb_clearance_corner])
					cube([wall_thin+clearance+controller_touchscreen_adapterpcb_clearance_display+1,wall+controller_touchscreen_adapterpcb_clearance_bottom+clearance+controller_touchscreen_adapterpcb_thickness+clearance+wall_thin,controller_touchscreen_adapterpcb_height+2*wall_thin]);
				translate([(controller_touchscreen_adapterpcb_width+2*wall_thin)/2-wall_thin-clearance-controller_touchscreen_adapterpcb_clearance_corner,-(wall+controller_touchscreen_adapterpcb_clearance_bottom+clearance+controller_touchscreen_adapterpcb_thickness+clearance+wall_thin)-wall,-wall_thin-clearance-controller_touchscreen_adapterpcb_clearance_corner])
					cube([controller_touchscreen_adapterpcb_width+2*wall_thin,wall+controller_touchscreen_adapterpcb_clearance_bottom+clearance+controller_touchscreen_adapterpcb_thickness+clearance+wall_thin,controller_touchscreen_adapterpcb_height+2*wall_thin]);
				translate([(controller_touchscreen_adapterpcb_width+2*wall_thin)/2-wall_thin-clearance-controller_touchscreen_adapterpcb_clearance_corner,-(wall+controller_touchscreen_adapterpcb_clearance_bottom+clearance+controller_touchscreen_adapterpcb_thickness+clearance+wall_thin)-wall-controller_touchscreen_adapterpcb_clearance_bottom-clearance-controller_touchscreen_adapterpcb_thickness,-(controller_touchscreen_adapterpcb_height+2*wall_thin)])
					cube([controller_touchscreen_adapterpcb_width+2*wall_thin,wall+controller_touchscreen_adapterpcb_clearance_bottom+clearance+controller_touchscreen_adapterpcb_thickness+clearance+wall_thin,controller_touchscreen_adapterpcb_height+2*wall_thin]);
				translate([(controller_touchscreen_adapterpcb_width+2*wall_thin)/2-wall_thin-clearance-controller_touchscreen_adapterpcb_clearance_corner,-(wall+controller_touchscreen_adapterpcb_clearance_bottom+clearance+controller_touchscreen_adapterpcb_thickness+clearance+wall_thin)-wall,-2*(controller_touchscreen_adapterpcb_height+2*wall_thin)+wall_thin+clearance+controller_touchscreen_adapterpcb_clearance_corner])
					cube([controller_touchscreen_adapterpcb_width+2*wall_thin,wall+controller_touchscreen_adapterpcb_clearance_bottom+clearance+controller_touchscreen_adapterpcb_thickness+clearance+wall_thin,controller_touchscreen_adapterpcb_height+2*wall_thin]);
				translate([-(controller_touchscreen_adapterpcb_width+2*wall_thin)/2-1,-(wall+controller_touchscreen_adapterpcb_clearance_bottom+clearance+controller_touchscreen_adapterpcb_thickness+clearance+wall_thin)-wall,-2*(controller_touchscreen_adapterpcb_height+2*wall_thin)+wall_thin+clearance+controller_touchscreen_adapterpcb_clearance_corner])
					cube([wall_thin+clearance+controller_touchscreen_adapterpcb_clearance_hdmi+1,wall+controller_touchscreen_adapterpcb_clearance_bottom+clearance+controller_touchscreen_adapterpcb_thickness+clearance+wall_thin,controller_touchscreen_adapterpcb_height+2*wall_thin]);
			}
		}

		// touchscreen cable clearance
		translate([0,1,0])
			rotate([90,0,0])
				cylinder(r=controller_touchscreen_cable_clearance_dia/2,h=wall+2);

		// frame enclosure mount screw holes and nut traps
		for(v=[0,1])
			mirror([0,0,v]){
				translate([controller_touchscreen_housing_mount_side/2-wall-clearance-frame_screw_dia/2,1,controller_touchscreen_housing_mount_side/2-wall-clearance-frame_screw_dia/2])
					rotate([90,0,0])
						cylinder(r=frame_screw_dia/2+clearance,h=wall+2);
				translate([-(controller_touchscreen_housing_mount_side/2-wall-clearance-frame_screw_dia/2),1,controller_touchscreen_housing_mount_side/2-wall-clearance-frame_screw_dia/2])
					rotate([90,0,0])
						cylinder(r=frame_screw_dia/2+clearance,h=wall+2);
			}
	}
}
